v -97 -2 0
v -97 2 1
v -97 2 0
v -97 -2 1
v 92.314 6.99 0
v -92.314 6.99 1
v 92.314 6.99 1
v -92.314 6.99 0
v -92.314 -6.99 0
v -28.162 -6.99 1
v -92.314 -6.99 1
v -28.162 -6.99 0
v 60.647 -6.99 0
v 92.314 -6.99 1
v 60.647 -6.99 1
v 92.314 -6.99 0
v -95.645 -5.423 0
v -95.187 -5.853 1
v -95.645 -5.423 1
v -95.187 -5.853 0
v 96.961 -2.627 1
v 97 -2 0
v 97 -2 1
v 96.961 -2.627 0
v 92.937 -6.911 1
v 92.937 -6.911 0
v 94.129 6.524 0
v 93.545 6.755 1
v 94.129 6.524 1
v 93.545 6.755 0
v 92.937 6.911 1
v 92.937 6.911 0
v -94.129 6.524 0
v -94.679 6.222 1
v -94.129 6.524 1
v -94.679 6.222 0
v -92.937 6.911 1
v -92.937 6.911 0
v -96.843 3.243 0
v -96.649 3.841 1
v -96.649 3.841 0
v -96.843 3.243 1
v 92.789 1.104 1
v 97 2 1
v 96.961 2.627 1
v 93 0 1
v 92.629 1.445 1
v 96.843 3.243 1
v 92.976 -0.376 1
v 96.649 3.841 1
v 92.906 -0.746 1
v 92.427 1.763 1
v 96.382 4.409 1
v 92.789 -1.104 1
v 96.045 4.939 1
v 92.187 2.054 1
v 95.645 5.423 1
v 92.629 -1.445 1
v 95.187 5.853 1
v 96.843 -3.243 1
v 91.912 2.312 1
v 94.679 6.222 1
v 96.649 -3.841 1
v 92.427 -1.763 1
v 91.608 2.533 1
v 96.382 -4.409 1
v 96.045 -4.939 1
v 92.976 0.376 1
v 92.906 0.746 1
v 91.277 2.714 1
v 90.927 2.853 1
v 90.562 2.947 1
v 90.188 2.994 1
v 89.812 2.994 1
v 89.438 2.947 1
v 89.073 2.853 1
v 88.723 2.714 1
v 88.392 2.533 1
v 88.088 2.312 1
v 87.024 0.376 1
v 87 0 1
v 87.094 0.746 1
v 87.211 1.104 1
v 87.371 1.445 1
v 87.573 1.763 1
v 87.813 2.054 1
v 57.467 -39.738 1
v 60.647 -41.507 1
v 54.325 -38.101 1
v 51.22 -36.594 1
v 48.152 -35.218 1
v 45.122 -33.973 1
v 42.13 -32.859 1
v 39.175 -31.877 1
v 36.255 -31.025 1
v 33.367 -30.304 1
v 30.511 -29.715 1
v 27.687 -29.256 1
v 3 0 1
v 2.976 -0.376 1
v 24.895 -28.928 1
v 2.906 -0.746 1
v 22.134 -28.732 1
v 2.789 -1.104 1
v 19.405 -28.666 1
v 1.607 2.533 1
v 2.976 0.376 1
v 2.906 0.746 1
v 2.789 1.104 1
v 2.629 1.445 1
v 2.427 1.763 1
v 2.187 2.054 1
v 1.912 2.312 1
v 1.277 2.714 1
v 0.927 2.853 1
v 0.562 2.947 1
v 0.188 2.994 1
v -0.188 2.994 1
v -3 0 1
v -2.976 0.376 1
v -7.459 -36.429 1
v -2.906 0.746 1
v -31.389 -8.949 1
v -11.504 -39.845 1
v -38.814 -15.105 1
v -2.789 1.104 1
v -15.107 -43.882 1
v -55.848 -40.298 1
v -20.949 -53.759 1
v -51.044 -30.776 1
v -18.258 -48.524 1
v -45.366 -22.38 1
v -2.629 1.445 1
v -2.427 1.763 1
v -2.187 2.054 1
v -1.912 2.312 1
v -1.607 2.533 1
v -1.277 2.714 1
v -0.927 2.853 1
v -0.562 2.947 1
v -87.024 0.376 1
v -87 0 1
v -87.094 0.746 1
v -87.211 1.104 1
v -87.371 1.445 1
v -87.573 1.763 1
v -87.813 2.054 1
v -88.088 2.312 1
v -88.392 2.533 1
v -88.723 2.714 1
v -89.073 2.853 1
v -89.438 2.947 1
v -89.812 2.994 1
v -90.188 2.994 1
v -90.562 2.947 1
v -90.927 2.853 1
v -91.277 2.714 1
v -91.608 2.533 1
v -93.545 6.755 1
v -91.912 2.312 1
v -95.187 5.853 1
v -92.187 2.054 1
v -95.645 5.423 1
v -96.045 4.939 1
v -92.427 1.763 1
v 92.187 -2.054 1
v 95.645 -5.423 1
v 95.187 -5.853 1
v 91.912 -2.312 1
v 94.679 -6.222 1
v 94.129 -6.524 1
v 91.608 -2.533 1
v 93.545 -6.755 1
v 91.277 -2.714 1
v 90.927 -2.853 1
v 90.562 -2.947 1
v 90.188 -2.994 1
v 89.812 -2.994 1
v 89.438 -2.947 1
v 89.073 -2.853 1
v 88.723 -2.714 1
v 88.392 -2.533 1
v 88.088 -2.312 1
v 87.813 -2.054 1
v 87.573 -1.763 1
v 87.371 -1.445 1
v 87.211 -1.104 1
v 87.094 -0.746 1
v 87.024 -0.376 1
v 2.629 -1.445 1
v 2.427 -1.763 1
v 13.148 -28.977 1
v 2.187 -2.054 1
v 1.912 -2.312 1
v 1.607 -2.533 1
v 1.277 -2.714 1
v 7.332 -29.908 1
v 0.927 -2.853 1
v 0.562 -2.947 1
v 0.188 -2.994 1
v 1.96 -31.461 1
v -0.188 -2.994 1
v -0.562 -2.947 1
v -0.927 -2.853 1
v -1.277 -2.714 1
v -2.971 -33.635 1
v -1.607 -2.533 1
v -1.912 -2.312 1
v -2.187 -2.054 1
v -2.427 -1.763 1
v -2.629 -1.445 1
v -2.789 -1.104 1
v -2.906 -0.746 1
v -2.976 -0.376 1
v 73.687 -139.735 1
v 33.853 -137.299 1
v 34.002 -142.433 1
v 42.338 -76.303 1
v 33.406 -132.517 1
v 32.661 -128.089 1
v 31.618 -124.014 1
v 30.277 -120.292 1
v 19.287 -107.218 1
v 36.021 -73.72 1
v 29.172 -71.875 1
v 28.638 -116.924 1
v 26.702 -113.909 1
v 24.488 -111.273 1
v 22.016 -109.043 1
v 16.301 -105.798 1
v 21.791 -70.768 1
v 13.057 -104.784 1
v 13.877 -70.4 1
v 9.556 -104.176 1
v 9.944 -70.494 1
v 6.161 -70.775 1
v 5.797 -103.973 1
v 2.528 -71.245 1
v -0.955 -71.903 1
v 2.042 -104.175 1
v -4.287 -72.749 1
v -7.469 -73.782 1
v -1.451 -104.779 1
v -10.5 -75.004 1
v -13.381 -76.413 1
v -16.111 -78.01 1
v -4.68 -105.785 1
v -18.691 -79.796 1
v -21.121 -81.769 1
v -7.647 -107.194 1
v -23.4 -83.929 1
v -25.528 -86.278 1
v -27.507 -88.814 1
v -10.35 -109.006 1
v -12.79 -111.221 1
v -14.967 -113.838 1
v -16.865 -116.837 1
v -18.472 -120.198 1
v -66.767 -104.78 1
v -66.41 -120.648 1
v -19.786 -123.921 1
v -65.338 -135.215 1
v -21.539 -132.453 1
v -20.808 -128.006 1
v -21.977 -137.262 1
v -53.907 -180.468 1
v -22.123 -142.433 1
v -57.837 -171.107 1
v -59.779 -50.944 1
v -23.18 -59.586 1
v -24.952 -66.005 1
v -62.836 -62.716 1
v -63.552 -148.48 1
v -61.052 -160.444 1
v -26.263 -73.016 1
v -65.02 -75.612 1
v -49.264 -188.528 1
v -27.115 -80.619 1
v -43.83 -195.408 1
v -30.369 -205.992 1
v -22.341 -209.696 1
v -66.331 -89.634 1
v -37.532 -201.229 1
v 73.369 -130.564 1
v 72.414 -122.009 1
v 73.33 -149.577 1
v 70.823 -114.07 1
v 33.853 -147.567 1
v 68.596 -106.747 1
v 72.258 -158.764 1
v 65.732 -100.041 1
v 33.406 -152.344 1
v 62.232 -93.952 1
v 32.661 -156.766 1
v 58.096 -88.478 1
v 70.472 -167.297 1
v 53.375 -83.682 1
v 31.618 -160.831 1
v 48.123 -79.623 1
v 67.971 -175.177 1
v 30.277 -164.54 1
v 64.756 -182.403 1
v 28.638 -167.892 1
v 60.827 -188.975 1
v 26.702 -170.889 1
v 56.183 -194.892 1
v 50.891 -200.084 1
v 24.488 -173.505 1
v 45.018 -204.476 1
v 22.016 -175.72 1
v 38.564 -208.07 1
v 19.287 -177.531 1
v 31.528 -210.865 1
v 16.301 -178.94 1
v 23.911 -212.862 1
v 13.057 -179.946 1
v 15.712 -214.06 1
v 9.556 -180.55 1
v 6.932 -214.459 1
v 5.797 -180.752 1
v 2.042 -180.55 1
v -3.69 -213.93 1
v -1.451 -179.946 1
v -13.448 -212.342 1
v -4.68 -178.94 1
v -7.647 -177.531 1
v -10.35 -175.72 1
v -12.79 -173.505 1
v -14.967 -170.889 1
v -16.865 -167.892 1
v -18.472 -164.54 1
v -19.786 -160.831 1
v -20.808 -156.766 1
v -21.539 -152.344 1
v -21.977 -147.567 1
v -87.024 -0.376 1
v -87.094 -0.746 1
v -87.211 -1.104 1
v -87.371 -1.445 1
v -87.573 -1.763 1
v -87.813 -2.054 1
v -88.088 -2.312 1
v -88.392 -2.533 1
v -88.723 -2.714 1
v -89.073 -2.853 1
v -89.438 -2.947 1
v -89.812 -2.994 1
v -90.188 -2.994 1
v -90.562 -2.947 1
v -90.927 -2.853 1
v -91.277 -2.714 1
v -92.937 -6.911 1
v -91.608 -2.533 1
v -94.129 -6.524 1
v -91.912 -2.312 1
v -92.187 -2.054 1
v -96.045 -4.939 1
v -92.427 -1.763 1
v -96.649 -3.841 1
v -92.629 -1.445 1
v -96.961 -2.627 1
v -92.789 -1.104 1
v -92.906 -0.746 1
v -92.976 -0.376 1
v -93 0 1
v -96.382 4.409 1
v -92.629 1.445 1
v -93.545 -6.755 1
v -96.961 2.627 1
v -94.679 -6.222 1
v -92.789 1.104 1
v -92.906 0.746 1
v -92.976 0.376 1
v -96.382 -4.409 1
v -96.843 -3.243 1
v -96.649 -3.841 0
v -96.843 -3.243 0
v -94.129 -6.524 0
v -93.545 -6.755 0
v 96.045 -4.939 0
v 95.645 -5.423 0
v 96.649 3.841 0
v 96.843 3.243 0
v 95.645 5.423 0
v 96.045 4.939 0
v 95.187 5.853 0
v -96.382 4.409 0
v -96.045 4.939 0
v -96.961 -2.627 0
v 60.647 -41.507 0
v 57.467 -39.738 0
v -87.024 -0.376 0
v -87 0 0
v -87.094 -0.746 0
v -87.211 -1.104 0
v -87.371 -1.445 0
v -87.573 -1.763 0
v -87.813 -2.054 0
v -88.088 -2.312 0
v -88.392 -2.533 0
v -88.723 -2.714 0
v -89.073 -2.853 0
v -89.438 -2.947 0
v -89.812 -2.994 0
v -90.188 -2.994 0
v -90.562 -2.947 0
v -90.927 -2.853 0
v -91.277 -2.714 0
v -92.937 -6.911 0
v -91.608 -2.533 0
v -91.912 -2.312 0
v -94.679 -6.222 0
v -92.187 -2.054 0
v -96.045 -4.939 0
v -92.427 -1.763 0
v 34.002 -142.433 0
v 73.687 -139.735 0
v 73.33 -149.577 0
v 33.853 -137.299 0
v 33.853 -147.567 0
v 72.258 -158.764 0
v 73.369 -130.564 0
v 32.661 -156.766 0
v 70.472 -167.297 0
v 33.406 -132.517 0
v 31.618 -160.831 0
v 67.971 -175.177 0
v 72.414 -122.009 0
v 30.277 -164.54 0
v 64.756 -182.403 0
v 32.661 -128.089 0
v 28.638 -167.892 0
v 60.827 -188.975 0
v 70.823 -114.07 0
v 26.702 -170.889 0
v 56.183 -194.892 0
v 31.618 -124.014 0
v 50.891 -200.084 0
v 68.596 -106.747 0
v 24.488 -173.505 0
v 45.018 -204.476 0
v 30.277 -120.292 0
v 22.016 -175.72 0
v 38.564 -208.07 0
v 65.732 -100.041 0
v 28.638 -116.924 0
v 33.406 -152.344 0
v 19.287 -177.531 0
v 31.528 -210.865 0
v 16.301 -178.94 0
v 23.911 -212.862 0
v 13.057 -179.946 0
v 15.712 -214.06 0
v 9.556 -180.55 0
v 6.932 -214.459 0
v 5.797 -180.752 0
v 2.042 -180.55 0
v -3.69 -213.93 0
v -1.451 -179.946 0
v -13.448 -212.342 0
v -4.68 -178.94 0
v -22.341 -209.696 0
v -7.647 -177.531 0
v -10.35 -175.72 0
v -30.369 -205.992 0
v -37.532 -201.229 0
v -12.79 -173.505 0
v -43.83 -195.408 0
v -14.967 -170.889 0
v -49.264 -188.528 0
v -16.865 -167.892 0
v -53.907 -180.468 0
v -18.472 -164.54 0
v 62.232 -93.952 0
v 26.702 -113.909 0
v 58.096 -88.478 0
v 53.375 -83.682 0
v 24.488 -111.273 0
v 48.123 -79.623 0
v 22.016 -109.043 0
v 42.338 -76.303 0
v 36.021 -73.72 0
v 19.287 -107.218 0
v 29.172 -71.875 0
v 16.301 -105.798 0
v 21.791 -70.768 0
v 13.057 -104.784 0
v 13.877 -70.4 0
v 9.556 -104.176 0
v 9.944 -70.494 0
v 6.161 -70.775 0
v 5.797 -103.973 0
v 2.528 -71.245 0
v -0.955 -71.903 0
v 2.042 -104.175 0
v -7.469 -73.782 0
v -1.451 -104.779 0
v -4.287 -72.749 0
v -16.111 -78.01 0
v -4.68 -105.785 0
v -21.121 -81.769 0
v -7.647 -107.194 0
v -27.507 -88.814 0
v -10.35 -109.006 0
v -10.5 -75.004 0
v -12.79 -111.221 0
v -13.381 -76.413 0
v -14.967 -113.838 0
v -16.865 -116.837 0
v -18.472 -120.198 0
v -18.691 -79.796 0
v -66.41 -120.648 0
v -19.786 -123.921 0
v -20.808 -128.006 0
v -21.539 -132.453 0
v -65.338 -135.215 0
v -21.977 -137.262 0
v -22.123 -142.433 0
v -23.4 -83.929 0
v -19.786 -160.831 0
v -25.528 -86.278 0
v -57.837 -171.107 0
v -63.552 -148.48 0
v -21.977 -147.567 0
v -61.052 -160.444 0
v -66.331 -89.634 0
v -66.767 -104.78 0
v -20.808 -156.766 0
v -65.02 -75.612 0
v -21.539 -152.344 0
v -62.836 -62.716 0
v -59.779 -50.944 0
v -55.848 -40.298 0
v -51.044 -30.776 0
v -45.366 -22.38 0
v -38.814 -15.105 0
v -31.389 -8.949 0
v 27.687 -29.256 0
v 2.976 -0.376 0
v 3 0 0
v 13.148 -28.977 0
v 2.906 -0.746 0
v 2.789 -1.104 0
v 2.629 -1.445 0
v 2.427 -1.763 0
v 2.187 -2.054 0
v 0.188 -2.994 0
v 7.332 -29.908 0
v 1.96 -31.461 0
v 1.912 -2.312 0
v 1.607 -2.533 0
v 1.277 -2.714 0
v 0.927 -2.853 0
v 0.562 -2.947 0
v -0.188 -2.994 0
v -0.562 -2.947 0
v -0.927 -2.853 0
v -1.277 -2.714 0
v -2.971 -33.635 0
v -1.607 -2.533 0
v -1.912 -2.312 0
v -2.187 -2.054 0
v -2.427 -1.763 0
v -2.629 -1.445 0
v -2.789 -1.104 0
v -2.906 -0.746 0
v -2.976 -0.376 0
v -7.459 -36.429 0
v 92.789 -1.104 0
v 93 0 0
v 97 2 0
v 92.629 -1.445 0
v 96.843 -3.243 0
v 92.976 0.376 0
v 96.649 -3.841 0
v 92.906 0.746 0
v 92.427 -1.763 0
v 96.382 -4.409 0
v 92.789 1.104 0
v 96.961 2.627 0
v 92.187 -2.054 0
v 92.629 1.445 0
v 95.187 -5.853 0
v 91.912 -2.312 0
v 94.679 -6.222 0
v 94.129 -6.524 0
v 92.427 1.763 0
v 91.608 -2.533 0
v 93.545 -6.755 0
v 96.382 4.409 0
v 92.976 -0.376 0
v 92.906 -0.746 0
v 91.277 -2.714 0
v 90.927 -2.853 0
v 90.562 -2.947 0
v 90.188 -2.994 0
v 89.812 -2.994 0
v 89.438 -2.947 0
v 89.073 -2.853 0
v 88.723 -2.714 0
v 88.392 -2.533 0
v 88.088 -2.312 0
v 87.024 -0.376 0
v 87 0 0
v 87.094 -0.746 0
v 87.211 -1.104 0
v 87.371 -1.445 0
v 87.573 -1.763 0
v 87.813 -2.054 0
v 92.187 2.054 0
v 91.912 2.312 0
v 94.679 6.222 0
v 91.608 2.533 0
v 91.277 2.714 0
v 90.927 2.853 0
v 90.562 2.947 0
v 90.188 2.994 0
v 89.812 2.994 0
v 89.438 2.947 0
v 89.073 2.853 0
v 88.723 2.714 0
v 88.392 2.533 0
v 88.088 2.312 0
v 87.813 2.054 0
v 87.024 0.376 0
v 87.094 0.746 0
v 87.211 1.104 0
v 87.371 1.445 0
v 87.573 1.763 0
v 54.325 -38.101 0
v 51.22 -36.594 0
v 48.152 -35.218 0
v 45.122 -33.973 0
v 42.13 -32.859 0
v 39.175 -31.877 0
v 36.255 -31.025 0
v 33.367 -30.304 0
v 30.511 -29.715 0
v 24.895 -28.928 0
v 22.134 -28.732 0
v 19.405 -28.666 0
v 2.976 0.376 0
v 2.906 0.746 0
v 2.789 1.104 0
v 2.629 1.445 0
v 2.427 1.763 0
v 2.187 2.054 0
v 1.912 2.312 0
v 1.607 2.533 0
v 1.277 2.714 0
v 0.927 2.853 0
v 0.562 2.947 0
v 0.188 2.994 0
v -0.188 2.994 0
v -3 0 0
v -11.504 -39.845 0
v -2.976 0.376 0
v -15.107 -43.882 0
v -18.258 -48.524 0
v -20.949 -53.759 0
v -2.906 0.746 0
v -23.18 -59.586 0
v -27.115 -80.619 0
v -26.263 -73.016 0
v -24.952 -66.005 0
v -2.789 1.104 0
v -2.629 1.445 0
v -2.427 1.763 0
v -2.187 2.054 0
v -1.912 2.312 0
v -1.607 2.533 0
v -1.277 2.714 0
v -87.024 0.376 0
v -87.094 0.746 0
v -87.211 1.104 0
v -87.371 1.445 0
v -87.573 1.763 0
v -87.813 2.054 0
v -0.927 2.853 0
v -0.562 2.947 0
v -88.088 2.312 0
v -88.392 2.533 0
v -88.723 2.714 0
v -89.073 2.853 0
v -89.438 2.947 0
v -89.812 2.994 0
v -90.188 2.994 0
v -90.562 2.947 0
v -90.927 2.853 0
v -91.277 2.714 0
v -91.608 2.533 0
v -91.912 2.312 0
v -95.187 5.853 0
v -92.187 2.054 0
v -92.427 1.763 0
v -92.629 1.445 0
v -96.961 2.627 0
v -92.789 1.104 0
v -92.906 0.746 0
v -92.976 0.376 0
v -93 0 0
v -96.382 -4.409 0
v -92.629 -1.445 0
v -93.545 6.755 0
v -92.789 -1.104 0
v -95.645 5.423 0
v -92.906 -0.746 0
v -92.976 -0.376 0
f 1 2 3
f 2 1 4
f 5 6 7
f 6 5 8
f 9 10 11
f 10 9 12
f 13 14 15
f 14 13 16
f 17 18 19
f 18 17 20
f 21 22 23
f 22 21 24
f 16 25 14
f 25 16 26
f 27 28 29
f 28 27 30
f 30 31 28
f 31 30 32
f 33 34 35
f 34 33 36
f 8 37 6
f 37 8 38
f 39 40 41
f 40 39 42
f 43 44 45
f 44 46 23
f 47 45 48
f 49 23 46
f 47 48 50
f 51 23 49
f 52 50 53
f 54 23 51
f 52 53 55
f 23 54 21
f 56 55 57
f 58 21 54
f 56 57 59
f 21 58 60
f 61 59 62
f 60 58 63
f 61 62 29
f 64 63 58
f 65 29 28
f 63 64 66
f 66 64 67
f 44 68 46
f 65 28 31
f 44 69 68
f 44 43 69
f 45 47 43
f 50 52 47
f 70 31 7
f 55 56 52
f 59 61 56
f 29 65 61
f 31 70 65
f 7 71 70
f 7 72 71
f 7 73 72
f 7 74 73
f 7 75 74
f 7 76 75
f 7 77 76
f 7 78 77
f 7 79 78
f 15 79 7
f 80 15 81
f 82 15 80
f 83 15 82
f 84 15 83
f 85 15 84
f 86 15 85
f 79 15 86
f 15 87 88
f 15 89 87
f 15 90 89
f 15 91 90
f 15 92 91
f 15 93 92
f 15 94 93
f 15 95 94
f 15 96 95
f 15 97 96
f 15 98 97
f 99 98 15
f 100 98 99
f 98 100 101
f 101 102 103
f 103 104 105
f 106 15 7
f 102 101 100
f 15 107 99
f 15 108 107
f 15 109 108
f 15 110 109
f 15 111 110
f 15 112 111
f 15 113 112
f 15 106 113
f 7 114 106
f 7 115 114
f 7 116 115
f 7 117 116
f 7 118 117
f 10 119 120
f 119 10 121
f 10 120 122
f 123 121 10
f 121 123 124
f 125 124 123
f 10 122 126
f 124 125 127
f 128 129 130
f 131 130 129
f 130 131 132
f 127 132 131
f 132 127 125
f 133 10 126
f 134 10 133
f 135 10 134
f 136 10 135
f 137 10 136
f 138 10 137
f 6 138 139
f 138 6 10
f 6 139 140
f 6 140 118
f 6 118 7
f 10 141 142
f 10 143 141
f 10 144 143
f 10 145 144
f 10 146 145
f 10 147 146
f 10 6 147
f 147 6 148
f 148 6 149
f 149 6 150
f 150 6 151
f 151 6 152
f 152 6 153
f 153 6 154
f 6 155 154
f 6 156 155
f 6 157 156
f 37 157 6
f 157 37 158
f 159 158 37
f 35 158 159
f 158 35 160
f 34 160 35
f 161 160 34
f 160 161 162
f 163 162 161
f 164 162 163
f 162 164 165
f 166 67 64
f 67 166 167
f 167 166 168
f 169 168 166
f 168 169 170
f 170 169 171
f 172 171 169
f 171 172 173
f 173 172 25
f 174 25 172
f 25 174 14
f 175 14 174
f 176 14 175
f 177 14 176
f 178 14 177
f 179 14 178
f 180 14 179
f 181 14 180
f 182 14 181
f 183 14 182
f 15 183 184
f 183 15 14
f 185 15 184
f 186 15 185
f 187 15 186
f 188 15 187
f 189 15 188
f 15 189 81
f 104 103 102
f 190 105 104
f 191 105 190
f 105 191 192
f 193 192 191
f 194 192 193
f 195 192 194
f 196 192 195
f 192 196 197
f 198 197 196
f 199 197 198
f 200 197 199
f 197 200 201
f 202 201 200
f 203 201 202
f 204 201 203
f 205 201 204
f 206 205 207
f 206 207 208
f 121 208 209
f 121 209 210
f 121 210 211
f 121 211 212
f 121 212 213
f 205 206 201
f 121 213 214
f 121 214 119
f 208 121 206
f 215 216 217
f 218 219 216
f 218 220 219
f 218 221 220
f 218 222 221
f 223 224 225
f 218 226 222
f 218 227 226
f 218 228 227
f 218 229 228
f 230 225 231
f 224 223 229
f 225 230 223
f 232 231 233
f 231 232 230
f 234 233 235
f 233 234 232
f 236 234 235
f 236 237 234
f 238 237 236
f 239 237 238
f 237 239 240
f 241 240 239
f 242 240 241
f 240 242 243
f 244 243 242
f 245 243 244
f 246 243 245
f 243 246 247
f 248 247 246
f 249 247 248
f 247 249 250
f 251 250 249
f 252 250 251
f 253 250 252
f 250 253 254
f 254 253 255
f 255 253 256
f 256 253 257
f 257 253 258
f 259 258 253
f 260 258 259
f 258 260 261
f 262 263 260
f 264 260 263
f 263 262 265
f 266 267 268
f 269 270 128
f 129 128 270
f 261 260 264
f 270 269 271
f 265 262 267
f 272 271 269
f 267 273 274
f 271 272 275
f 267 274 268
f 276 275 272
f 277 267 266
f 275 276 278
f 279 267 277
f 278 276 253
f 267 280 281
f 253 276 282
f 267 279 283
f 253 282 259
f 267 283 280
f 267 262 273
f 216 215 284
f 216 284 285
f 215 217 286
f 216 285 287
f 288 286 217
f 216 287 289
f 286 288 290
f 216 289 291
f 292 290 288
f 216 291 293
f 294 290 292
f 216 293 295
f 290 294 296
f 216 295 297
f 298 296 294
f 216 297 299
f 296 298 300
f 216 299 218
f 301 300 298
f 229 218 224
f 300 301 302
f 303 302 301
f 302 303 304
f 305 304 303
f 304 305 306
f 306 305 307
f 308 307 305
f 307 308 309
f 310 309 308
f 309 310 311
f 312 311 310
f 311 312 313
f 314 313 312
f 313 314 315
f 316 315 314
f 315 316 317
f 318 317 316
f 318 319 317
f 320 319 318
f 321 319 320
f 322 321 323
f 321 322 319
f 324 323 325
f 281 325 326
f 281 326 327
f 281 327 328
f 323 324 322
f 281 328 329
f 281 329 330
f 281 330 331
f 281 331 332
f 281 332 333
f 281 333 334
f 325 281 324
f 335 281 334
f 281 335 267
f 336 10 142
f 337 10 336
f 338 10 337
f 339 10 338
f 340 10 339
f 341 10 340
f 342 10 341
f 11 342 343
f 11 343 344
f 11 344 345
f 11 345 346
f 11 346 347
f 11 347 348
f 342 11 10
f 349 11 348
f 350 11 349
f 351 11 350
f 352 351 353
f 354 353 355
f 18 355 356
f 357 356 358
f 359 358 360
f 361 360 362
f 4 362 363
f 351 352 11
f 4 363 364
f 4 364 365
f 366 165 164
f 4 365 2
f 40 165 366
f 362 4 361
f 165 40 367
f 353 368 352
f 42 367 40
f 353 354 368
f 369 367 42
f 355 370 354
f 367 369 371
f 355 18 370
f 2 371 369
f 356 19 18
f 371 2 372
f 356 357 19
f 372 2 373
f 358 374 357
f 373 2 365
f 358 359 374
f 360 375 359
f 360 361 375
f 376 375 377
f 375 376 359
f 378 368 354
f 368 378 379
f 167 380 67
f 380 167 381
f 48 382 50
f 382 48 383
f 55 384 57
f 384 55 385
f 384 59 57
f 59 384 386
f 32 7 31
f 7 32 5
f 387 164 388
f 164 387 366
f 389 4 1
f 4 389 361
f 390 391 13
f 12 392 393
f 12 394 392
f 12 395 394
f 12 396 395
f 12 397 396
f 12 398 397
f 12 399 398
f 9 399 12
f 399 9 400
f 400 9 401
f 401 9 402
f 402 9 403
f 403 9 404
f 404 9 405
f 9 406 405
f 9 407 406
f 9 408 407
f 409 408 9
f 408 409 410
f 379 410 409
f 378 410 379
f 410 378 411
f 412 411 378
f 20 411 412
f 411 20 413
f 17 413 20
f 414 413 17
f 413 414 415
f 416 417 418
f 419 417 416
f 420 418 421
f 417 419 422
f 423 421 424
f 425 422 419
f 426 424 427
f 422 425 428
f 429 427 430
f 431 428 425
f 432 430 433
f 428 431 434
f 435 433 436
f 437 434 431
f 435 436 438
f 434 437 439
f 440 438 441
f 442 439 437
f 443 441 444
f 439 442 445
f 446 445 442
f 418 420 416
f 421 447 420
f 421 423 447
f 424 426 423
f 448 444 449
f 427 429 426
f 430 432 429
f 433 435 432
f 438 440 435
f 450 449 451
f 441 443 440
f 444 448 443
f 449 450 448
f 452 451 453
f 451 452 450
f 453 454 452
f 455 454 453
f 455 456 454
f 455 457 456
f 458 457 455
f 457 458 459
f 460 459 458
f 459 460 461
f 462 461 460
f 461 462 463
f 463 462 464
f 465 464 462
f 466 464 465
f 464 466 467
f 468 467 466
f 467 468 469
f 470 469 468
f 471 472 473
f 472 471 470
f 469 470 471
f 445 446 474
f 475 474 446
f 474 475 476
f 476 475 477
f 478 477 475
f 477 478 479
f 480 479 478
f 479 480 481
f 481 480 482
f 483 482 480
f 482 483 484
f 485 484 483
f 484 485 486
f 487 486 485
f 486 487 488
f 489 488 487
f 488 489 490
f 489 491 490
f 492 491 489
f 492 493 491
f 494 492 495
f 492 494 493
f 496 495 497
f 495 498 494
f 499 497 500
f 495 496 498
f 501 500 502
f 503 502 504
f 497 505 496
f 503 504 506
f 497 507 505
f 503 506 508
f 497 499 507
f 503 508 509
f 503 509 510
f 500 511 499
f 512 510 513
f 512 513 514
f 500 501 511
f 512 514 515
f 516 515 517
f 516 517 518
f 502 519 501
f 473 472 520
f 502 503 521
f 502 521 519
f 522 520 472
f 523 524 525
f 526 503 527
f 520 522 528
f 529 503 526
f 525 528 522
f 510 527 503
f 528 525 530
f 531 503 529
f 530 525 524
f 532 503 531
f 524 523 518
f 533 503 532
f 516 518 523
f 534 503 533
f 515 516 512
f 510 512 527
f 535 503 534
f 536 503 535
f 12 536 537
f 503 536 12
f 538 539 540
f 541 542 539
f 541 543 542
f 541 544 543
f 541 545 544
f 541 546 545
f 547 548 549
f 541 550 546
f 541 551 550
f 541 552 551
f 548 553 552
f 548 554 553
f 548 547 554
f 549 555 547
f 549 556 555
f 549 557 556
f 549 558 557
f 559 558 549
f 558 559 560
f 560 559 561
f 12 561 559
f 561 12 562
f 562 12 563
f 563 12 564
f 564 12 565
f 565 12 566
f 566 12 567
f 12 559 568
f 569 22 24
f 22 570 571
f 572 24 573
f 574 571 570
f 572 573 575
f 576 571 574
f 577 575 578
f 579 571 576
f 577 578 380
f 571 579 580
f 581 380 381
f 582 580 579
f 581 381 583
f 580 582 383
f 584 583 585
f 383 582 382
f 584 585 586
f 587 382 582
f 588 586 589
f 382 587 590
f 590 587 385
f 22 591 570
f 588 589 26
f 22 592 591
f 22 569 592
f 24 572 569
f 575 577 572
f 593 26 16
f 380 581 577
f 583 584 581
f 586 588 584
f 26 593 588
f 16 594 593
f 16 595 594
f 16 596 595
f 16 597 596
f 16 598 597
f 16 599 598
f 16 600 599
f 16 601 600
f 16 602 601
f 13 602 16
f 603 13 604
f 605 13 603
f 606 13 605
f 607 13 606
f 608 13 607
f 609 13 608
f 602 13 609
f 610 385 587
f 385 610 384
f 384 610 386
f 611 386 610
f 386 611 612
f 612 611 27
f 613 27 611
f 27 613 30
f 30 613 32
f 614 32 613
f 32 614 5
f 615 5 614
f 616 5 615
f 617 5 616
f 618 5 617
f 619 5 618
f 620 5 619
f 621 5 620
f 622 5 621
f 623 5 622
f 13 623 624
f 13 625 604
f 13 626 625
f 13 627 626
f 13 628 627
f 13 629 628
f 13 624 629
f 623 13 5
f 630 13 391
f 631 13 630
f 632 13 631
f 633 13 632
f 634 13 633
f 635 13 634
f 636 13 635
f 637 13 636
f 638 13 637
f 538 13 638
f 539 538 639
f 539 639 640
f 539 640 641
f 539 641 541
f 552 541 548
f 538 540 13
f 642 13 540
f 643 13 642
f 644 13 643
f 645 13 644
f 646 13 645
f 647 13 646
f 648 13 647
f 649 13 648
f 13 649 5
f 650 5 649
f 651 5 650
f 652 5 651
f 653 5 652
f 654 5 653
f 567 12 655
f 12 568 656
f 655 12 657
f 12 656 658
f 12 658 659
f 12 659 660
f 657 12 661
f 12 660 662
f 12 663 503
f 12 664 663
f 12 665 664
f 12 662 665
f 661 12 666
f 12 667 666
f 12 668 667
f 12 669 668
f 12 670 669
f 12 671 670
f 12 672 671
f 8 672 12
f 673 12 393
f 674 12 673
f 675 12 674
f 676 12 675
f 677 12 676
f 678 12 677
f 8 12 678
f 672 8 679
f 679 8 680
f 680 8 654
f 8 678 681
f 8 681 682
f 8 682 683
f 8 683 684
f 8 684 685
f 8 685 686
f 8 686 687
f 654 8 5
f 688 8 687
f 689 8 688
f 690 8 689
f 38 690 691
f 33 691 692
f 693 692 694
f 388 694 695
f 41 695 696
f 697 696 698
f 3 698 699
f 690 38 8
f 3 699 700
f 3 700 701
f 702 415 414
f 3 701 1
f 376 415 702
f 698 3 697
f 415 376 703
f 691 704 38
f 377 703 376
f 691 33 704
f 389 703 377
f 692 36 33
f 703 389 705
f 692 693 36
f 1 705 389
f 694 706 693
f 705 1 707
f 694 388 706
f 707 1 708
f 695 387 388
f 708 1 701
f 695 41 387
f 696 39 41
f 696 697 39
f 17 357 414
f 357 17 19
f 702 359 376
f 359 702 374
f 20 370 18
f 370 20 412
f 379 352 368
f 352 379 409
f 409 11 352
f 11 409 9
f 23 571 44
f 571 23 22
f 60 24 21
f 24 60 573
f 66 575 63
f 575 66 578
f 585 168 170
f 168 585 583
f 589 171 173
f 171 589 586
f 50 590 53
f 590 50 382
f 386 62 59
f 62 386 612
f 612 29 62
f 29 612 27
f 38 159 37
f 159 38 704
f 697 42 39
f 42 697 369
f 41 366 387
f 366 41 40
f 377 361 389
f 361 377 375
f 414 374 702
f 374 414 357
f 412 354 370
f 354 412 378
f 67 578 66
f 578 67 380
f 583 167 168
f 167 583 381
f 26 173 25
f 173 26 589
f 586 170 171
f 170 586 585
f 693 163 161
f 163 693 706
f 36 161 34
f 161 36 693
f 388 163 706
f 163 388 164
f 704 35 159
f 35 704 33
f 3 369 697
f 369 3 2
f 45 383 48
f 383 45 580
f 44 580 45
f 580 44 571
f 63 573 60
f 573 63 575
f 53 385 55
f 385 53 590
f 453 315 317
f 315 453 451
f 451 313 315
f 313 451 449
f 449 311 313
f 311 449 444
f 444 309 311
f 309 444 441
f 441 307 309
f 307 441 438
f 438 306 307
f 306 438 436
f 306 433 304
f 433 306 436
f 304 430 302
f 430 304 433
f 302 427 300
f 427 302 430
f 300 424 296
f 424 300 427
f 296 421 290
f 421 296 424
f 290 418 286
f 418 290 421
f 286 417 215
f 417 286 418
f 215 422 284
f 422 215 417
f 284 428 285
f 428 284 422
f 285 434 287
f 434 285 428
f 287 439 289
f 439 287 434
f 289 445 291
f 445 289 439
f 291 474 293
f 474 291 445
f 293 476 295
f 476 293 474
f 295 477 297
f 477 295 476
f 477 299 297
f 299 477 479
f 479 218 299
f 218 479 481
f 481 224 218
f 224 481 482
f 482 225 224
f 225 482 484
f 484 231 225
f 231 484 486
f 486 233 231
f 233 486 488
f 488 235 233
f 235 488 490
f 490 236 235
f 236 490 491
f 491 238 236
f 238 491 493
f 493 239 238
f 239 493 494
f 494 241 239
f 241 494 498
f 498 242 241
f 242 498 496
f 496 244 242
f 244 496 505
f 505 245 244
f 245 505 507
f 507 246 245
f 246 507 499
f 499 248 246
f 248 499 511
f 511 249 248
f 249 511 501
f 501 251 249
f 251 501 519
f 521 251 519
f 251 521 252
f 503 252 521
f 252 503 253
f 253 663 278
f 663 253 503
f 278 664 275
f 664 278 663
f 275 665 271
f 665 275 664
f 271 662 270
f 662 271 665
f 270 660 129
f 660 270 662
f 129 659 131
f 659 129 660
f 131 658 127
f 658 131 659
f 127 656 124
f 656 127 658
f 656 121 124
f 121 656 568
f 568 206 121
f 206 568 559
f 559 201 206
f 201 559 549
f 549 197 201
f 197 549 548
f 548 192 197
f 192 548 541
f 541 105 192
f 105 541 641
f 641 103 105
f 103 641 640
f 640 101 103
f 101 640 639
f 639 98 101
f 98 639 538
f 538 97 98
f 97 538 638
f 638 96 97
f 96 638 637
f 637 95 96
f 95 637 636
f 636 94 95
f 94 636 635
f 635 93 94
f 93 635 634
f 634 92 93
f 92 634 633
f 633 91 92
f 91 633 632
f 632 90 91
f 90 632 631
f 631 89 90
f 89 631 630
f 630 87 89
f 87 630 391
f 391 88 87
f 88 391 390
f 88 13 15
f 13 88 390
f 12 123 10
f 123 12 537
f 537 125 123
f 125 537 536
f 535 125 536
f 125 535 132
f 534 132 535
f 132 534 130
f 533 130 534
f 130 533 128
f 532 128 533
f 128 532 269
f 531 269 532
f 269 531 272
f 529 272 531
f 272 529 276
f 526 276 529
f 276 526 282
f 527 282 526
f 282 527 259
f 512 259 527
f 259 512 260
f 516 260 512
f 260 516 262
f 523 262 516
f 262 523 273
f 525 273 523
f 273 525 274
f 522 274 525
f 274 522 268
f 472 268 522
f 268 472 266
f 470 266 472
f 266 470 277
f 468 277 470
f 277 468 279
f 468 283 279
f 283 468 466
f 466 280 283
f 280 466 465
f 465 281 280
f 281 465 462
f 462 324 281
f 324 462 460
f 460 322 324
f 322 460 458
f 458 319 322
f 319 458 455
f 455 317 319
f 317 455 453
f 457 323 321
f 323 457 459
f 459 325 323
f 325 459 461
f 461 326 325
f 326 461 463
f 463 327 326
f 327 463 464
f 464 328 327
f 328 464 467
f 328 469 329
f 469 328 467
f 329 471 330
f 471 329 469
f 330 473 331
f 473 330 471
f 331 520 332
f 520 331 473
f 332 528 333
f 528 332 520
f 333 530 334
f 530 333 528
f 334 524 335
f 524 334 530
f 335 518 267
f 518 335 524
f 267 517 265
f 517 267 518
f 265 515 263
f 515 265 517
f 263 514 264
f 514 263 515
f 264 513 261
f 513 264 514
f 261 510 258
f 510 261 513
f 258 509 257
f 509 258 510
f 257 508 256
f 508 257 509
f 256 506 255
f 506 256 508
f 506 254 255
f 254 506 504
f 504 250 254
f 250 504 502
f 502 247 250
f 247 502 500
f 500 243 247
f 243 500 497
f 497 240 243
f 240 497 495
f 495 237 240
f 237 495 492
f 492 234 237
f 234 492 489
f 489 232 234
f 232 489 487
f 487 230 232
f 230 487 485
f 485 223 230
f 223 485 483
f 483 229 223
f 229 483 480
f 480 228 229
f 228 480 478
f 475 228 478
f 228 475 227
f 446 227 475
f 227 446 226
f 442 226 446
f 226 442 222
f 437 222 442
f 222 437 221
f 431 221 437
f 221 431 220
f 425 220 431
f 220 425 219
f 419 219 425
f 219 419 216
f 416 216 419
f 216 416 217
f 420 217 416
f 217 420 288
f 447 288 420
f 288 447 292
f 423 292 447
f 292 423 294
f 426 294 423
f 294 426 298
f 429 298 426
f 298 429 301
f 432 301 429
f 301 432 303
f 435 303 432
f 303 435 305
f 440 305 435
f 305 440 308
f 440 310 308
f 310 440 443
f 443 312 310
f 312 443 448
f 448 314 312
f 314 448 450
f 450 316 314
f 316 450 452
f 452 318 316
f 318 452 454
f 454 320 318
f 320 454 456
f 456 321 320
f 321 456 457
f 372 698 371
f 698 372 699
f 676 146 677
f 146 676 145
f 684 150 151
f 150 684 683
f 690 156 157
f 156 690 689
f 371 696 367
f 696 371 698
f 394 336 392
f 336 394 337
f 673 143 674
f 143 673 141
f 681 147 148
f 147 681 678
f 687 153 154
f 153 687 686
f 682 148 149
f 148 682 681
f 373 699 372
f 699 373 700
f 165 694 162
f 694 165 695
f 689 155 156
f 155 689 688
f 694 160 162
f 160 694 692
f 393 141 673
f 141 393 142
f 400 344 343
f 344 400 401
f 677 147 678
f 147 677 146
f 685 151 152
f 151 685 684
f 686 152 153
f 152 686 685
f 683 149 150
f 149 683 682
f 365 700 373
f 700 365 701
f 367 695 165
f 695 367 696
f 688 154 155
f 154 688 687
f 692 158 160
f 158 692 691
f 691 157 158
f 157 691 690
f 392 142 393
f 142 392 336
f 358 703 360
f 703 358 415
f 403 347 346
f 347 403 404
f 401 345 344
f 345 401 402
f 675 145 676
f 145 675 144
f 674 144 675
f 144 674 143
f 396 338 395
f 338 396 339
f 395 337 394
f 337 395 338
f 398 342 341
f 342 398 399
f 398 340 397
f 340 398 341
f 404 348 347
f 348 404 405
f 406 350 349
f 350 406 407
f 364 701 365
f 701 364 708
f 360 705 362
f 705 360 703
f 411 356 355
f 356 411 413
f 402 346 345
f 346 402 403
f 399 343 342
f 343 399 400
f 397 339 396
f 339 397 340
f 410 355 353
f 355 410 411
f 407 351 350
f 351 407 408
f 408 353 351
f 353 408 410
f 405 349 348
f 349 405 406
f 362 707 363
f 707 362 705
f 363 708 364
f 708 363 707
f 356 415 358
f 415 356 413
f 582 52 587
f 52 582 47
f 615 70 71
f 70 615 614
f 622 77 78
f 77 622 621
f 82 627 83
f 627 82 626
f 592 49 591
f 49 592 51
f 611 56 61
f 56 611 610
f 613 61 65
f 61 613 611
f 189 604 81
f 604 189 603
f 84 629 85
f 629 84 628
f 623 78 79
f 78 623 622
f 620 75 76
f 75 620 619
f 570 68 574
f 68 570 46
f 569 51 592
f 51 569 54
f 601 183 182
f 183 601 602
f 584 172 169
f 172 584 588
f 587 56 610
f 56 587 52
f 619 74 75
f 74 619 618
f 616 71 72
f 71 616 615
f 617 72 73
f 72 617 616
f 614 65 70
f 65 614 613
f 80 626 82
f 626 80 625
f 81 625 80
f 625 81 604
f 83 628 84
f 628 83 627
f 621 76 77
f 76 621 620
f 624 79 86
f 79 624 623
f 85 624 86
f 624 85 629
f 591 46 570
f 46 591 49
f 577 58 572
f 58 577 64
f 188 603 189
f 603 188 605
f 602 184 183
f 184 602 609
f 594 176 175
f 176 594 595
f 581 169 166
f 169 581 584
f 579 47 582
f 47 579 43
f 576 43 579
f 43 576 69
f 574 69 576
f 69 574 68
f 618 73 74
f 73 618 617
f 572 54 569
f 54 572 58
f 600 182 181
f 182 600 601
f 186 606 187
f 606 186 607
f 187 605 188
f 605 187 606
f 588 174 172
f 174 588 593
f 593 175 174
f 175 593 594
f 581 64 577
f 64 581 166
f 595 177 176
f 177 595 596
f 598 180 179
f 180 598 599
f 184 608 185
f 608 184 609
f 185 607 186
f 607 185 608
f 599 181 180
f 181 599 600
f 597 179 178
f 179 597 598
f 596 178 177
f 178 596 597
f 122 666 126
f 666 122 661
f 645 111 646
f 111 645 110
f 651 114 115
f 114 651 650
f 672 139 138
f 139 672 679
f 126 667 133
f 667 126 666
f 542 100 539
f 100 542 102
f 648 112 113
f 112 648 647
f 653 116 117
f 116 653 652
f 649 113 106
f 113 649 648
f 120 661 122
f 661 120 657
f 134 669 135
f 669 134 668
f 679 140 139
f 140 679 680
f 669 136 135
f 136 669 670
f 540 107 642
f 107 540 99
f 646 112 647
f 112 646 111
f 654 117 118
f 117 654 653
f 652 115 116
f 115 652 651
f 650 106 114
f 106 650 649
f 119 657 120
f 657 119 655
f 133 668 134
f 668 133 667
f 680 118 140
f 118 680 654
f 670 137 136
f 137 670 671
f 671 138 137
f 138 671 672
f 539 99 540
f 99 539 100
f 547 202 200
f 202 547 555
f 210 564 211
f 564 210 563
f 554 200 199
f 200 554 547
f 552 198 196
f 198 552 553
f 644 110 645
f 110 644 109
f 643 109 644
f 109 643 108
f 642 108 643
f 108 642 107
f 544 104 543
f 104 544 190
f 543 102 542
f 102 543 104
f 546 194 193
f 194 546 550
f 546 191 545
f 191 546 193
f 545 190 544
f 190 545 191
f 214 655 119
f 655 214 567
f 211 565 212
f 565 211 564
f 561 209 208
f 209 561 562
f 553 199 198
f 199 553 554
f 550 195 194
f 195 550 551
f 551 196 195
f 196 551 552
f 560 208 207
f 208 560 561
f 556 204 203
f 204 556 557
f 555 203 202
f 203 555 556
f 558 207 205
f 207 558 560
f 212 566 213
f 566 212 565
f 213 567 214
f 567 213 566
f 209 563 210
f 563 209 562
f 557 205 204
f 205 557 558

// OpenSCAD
$fn = 50;


difference() {
	union() {
		translate(v = [0, 0, 0]) {
			rotate(a = [0, 0, 0]) {
				hull() {
					translate(v = [-92.0000000000, 2.0000000000, 0]) {
						rotate(a = [0, 0, 0]) {
							translate(v = [0, 0, 0]) {
								rotate(a = [0, 0, 0]) {
									cylinder(h = 1, r = 5);
								}
							}
						}
					}
					translate(v = [92.0000000000, 2.0000000000, 0]) {
						rotate(a = [0, 0, 0]) {
							translate(v = [0, 0, 0]) {
								rotate(a = [0, 0, 0]) {
									cylinder(h = 1, r = 5);
								}
							}
						}
					}
					translate(v = [-92.0000000000, -2.0000000000, 0]) {
						rotate(a = [0, 0, 0]) {
							translate(v = [0, 0, 0]) {
								rotate(a = [0, 0, 0]) {
									cylinder(h = 1, r = 5);
								}
							}
						}
					}
					translate(v = [92.0000000000, -2.0000000000, 0]) {
						rotate(a = [0, 0, 0]) {
							translate(v = [0, 0, 0]) {
								rotate(a = [0, 0, 0]) {
									cylinder(h = 1, r = 5);
								}
							}
						}
					}
				}
			}
		}
		translate(v = [0, 0, 0]) {
			rotate(a = [0, 0, 0]) {
				linear_extrude(height = 1) {
					text(font = "DejaVu Sans Mono:style=Bold", halign = "center", size = 209.0000000000, text = "6", valign = "top");
				}
			}
		}
	}
	union() {
		translate(v = [-90.0000000000, 0.0000000000, -125.0000000000]) {
			rotate(a = [0, 0, 0]) {
				cylinder(h = 250, r = 3.0000000000);
			}
		}
		translate(v = [90.0000000000, 0.0000000000, -125.0000000000]) {
			rotate(a = [0, 0, 0]) {
				cylinder(h = 250, r = 3.0000000000);
			}
		}
		translate(v = [90.0000000000, 0.0000000000, -125.0000000000]) {
			rotate(a = [0, 0, 0]) {
				cylinder(h = 250, r = 3.0000000000);
			}
		}
		translate(v = [0, 0, -125.0000000000]) {
			rotate(a = [0, 0, 0]) {
				cylinder(h = 250, r = 3.0000000000);
			}
		}
	}
}
